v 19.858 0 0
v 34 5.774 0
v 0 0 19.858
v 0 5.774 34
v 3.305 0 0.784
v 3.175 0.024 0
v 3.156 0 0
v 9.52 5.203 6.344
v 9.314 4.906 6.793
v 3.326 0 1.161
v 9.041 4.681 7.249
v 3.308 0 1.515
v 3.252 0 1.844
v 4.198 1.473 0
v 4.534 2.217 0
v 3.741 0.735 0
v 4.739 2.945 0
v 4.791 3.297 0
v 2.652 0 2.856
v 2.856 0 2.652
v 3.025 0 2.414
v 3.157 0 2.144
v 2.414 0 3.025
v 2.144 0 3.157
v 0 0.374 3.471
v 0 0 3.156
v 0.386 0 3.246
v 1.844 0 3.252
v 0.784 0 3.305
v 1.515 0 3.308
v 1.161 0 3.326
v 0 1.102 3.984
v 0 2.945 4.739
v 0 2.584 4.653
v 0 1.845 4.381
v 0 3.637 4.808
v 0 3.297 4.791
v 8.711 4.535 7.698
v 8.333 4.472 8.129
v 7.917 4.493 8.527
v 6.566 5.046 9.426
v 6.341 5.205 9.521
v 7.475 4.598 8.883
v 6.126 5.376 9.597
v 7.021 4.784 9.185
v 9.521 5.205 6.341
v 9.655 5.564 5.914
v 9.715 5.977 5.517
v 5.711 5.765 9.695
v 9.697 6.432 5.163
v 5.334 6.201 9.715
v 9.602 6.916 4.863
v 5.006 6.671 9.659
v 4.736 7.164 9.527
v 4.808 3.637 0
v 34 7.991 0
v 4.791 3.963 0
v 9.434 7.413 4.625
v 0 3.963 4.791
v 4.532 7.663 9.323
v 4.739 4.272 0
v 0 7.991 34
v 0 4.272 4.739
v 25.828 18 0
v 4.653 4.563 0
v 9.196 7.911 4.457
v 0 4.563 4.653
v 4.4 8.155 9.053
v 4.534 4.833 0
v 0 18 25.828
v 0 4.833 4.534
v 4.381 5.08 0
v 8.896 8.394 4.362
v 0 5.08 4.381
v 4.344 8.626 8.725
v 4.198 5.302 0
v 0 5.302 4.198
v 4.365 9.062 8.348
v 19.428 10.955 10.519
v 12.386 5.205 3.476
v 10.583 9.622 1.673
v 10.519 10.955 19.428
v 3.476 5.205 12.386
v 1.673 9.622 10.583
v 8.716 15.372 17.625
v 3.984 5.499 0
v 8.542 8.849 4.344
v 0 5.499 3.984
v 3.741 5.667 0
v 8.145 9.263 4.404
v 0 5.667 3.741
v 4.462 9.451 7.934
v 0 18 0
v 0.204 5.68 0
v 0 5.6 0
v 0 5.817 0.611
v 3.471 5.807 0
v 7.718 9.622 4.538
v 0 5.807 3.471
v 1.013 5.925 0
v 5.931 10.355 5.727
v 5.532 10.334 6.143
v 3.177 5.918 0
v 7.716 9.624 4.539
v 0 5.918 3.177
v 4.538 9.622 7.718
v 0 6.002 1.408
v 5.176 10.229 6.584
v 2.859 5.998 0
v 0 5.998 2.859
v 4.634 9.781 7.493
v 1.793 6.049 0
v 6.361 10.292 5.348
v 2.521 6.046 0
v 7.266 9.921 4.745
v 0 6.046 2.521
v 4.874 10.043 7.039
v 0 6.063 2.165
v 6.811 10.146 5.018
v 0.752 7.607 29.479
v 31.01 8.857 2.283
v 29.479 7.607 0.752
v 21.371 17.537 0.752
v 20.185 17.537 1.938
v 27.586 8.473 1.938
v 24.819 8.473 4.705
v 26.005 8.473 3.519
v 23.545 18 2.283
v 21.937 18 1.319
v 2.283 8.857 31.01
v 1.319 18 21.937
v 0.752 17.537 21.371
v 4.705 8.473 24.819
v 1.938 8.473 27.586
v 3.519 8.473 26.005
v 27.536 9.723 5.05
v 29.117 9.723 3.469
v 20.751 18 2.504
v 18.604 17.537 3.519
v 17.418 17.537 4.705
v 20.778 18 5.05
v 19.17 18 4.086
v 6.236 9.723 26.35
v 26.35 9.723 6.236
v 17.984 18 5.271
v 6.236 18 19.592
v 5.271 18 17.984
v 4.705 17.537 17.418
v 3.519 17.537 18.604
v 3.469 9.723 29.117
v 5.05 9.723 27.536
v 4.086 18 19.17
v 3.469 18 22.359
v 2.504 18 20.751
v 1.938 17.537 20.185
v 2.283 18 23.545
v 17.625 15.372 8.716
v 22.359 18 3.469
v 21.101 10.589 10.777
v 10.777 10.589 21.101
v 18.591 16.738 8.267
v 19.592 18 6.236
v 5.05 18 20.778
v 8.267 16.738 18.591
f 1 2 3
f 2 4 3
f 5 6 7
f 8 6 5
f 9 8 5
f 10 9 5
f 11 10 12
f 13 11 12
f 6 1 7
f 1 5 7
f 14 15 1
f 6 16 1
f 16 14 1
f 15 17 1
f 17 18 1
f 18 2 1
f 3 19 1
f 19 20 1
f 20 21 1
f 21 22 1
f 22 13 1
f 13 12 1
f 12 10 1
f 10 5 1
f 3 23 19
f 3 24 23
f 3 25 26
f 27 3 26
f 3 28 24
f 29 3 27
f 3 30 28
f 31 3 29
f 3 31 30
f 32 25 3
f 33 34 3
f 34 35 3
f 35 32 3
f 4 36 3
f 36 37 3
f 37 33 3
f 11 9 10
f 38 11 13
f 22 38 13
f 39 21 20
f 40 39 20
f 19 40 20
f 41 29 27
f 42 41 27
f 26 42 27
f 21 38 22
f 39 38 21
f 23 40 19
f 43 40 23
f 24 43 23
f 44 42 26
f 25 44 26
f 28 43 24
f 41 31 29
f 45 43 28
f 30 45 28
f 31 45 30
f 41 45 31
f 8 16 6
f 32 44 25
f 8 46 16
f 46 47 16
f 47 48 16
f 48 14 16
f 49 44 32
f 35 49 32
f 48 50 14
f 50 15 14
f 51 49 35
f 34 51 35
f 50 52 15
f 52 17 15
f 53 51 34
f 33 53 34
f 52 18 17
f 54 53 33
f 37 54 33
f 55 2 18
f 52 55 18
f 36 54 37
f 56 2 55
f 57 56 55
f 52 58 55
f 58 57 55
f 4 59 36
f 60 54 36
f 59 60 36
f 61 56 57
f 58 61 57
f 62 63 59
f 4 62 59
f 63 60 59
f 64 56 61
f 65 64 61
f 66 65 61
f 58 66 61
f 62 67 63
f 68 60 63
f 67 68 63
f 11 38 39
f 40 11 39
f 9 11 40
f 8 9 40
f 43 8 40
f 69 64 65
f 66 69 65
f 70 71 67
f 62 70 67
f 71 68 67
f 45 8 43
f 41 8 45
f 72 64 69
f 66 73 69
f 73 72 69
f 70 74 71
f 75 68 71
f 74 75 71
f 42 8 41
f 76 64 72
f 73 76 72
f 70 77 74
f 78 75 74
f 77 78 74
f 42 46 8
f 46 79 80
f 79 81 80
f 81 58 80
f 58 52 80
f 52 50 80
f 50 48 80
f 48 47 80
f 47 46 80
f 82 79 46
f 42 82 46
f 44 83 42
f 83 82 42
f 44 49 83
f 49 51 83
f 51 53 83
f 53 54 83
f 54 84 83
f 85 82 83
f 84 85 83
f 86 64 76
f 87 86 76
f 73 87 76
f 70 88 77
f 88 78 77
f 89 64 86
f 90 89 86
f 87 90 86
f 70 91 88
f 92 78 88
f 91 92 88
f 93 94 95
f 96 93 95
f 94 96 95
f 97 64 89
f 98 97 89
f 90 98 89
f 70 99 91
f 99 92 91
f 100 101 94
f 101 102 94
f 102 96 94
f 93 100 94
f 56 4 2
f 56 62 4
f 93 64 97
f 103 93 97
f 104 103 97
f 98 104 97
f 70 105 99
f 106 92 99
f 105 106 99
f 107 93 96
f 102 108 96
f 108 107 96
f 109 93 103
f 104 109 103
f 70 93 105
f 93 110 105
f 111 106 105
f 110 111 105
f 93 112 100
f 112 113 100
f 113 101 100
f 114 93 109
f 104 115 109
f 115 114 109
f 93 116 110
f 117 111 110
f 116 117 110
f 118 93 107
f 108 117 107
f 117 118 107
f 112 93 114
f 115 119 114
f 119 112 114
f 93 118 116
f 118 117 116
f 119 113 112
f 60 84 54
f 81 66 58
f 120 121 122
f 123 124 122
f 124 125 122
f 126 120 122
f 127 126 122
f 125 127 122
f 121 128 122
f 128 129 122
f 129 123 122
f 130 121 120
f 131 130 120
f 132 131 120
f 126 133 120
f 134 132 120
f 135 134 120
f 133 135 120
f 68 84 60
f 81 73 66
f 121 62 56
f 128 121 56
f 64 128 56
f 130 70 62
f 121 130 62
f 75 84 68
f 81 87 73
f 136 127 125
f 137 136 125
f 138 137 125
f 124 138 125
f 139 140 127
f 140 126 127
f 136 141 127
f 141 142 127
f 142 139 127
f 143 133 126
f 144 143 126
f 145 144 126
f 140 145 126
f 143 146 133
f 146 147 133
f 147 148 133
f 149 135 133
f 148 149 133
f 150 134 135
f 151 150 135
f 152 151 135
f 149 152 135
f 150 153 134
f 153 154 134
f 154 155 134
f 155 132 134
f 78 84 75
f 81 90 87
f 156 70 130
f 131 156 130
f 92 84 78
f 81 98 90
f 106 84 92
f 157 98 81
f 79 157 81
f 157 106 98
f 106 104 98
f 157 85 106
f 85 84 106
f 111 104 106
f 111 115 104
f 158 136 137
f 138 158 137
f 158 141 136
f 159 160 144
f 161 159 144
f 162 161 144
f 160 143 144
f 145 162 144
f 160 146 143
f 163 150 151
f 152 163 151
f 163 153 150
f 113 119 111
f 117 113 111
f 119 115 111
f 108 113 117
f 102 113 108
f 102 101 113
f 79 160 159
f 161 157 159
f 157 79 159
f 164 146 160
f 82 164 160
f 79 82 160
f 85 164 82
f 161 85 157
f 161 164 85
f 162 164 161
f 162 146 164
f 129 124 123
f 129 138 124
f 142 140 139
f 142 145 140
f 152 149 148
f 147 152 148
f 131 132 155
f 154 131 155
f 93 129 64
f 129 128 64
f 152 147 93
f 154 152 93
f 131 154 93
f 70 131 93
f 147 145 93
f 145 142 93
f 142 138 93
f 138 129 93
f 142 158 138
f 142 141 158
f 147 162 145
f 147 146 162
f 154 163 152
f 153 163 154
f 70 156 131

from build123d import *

# Parameters (mm, degrees)
BOSS_EXTRUDE1_DEPTH     = 18
CUT_EXTRUDE2_DEPTH      = 9
CUT_EXTRUDE3_DEPTH      = 30.344292319
CUT_EXTRUDE3_DEPTH_BACK = 12.5
SKETCH6_6_W             = 12.6
SKETCH6_6_H             = 5.1
CUT_EXTRUDE4_DEPTH      = 2.5
CHAMFER1_SIZE           = 10
CHAMFER1_SIZE2          = 5.773502692
CHAMFER2_SIZE           = 1
CUT_EXTRUDE5_START      = -12.5
CUT_EXTRUDE5_DEPTH      = 17.844292319


with BuildPart() as part:
    # Sketch1 → Boss-Extrude1 (new body)
    with BuildSketch(Plane(origin=(0, 0, 0), x_dir=(1, 0, 0), z_dir=(0, 1, 0))):
        Polygon((0, 0), (0, -34), (34, 0), align=None)
    extrude(amount=BOSS_EXTRUDE1_DEPTH)

    # Sketch6 → Cut-Extrude2 (cut)
    # profile 1 of 8: a face of its own
    with BuildSketch(Plane(origin=(15.196708808, 12.408060783, 15.196708808), x_dir=(0.7071067811865475, 0, -0.7071067811865476), z_dir=(0.6123724356957942, 0.5000000000000011, 0.6123724356957941))):
        Polygon((-24.04163056, 7.366311807), (-24.04163056, -5.100477721), (24.04163056, -5.100477721), (24.04163056, 7.366311807), (-8.989412587, 7.366311807), (-14.222807352, -3.100477721), (0, -3.100477721), (0, -4.100477721), (-20.312977295, -4.100477721), (-14.579582531, 7.366311807), align=None)
        with BuildLine():
            ThreePointArc((2.248888614, -1.100477721), (0, -1.950477721), (-2.248888614, -1.100477721))
            Line((-2.248888614, -1.100477721), (-6.3, -1.100477721))
            Line((-6.3, -1.100477721), (-6.3, 3.999522279))
            Line((-6.3, 3.999522279), (-2.248888614, 3.999522279))
            ThreePointArc((-2.248888614, 3.999522279), (0, 4.849522279), (2.248888614, 3.999522279))
            Line((2.248888614, 3.999522279), (6.3, 3.999522279))
            Line((6.3, 3.999522279), (6.3, -1.100477721))
            Line((6.3, -1.100477721), (2.248888614, -1.100477721))
        make_face(mode=Mode.SUBTRACT)
    # profile 2 of 8: a face of its own
    with BuildSketch(Plane(origin=(15.196708808, 12.408060783, 15.196708808), x_dir=(0.7071067811865475, 0, -0.7071067811865476), z_dir=(0.6123724356957942, 0.5000000000000011, 0.6123724356957941))):
        with BuildLine():
            ThreePointArc((3.4, 1.449522279), (3.098888614, 0.050633664), (2.248888614, -1.100477721))
            Line((2.248888614, -1.100477721), (6.3, -1.100477721))
            Line((6.3, -1.100477721), (6.3, 3.999522279))
            Line((6.3, 3.999522279), (2.248888614, 3.999522279))
            ThreePointArc((2.248888614, 3.999522279), (3.098888614, 2.848410893), (3.4, 1.449522279))
        make_face()
    # profile 3 of 8: a face of its own
    with BuildSketch(Plane(origin=(15.196708808, 12.408060783, 15.196708808), x_dir=(0.7071067811865475, 0, -0.7071067811865476), z_dir=(0.6123724356957942, 0.5000000000000011, 0.6123724356957941))):
        with BuildLine():
            Line((-6.3, -1.100477721), (-2.248888614, -1.100477721))
            ThreePointArc((-2.248888614, -1.100477721), (-3.4, 1.449522279), (-2.248888614, 3.999522279))
            Line((-2.248888614, 3.999522279), (-6.3, 3.999522279))
            Line((-6.3, 3.999522279), (-6.3, -1.100477721))
        make_face()
    # profile 4 of 8: a face of its own
    with BuildSketch(Plane(origin=(15.196708808, 12.408060783, 15.196708808), x_dir=(0.7071067811865475, 0, -0.7071067811865476), z_dir=(0.6123724356957942, 0.5000000000000011, 0.6123724356957941))):
        with BuildLine():
            Line((0, -1.100477721), (-2.248888614, -1.100477721))
            ThreePointArc((-2.248888614, -1.100477721), (0, -1.950477721), (2.248888614, -1.100477721))
            Line((2.248888614, -1.100477721), (0, -1.100477721))
        make_face()
    # profile 5 of 8: a face of its own
    with BuildSketch(Plane(origin=(15.196708808, 12.408060783, 15.196708808), x_dir=(0.7071067811865475, 0, -0.7071067811865476), z_dir=(0.6123724356957942, 0.5000000000000011, 0.6123724356957941))):
        with BuildLine():
            ThreePointArc((2.248888614, 3.999522279), (0, 4.849522279), (-2.248888614, 3.999522279))
            Line((-2.248888614, 3.999522279), (0, 3.999522279))
            Line((0, 3.999522279), (2.248888614, 3.999522279))
        make_face()
    # profile 6 of 8: a face of its own
    with BuildSketch(Plane(origin=(15.196708808, 12.408060783, 15.196708808), x_dir=(0.7071067811865475, 0, -0.7071067811865476), z_dir=(0.6123724356957942, 0.5000000000000011, 0.6123724356957941))):
        with BuildLine():
            ThreePointArc((-2.248888614, 3.999522279), (-3.4, 1.449522279), (-2.248888614, -1.100477721))
            Line((-2.248888614, -1.100477721), (0, -1.100477721))
            Line((0, -1.100477721), (2.248888614, -1.100477721))
            ThreePointArc((2.248888614, -1.100477721), (3.098888614, 0.050633664), (3.4, 1.449522279))
            ThreePointArc((3.4, 1.449522279), (3.098888614, 2.848410893), (2.248888614, 3.999522279))
            Line((2.248888614, 3.999522279), (0, 3.999522279))
            Line((0, 3.999522279), (-2.248888614, 3.999522279))
        make_face()
    # profile 7 of 8: a face of its own
    with BuildSketch(Plane(origin=(15.196708808, 12.408060783, 15.196708808), x_dir=(0.7071067811865475, 0, -0.7071067811865476), z_dir=(0.6123724356957942, 0.5000000000000011, 0.6123724356957941))):
        Polygon((-12.902531548, 7.366311807), (-14.579582531, 7.366311807), (-20.312977295, -4.100477721), (0, -4.100477721), (0, -3.100477721), (-14.222807352, -3.100477721), (-8.989412587, 7.366311807), (-10.666463571, 7.366311807), (-15.899858335, -3.100477721), (-18.135926312, -3.100477721), align=None)
    # profile 8 of 8: a face of its own
    with BuildSketch(Plane(origin=(15.196708808, 12.408060783, 15.196708808), x_dir=(0.7071067811865475, 0, -0.7071067811865476), z_dir=(0.6123724356957942, 0.5000000000000011, 0.6123724356957941))):
        Polygon((-10.666463571, 7.366311807), (-12.902531548, 7.366311807), (-18.135926312, -3.100477721), (-15.899858335, -3.100477721), align=None)
    extrude(amount=CUT_EXTRUDE2_DEPTH, mode=Mode.SUBTRACT)

    # Sketch6<6> → Cut-Extrude3 (cut, two sides: drawn at the far end of the back side and taken through both)
    with BuildSketch(Plane(origin=(15.196708808, 12.408060783, 15.196708808), x_dir=(0.7071067811865475, 0, -0.7071067811865476), z_dir=(0.6123724356957942, 0.5000000000000011, 0.6123724356957941)).offset(-CUT_EXTRUDE3_DEPTH_BACK)):
        with Locations((0, 1.449522279)):
            Rectangle(SKETCH6_6_W, SKETCH6_6_H)
    extrude(amount=CUT_EXTRUDE3_DEPTH + CUT_EXTRUDE3_DEPTH_BACK, mode=Mode.SUBTRACT)

    # Sketch6<8> → Cut-Extrude4 (cut)
    with BuildSketch(Plane(origin=(15.196708808, 12.408060783, 15.196708808), x_dir=(0.7071067811865475, 0, -0.7071067811865476), z_dir=(0.6123724356957942, 0.5000000000000011, 0.6123724356957941))):
        Polygon((-12.902531548, 7.366311807), (-14.579582531, 7.366311807), (-20.312977295, -4.100477721), (0, -4.100477721), (0, -3.100477721), (-14.222807352, -3.100477721), (-8.989412587, 7.366311807), (-10.666463571, 7.366311807), (-15.899858335, -3.100477721), (-18.135926312, -3.100477721), align=None)
    cut_extrude4 = extrude(amount=-CUT_EXTRUDE4_DEPTH, mode=Mode.SUBTRACT)

    # Mirror1: Cut-Extrude4 across plane
    add(cut_extrude4.mirror(Plane(origin=(0, 0, 0), x_dir=(0.7071067811865476, 0, 0.7071067811865476), z_dir=(-0.7071067811865477, 0, 0.7071067811865475))), mode=Mode.SUBTRACT)

    # Chamfer1
    chamfer1_edges = [part.edges().sort_by_distance(p)[0] for p in [
        (17, 0, 17),
    ]]
    chamfer1_side = [part.faces().sort_by_distance(p)[0] for p in [
        (11.333333333, 0, 11.333333333),
    ]]
    chamfer(chamfer1_edges, length=CHAMFER1_SIZE, length2=CHAMFER1_SIZE2, reference=chamfer1_side[0])

    # Chamfer2
    chamfer2_edges = [part.edges().sort_by_distance(p)[0] for p in [
        (19.138998013, 13.6633839, 10.22945257),
        (15.585786438, 11.45501912, 15.585786438),
        (10.22945257, 13.6633839, 19.138998013),
        (13.782664146, 15.871748679, 13.782664146),
    ]]
    chamfer(chamfer2_edges, length=CHAMFER2_SIZE)

    # Sketch6<9> → Cut-Extrude5 (cut, through all)
    with BuildSketch(Plane(origin=(15.196708808, 12.408060783, 15.196708808), x_dir=(0.7071067811865475, 0, -0.7071067811865476), z_dir=(0.6123724356957942, 0.5000000000000011, 0.6123724356957941)).offset(CUT_EXTRUDE5_START)):
        with BuildLine():
            ThreePointArc((2.248888614, 3.999522279), (0, 4.849522279), (-2.248888614, 3.999522279))
            Line((-2.248888614, 3.999522279), (0, 3.999522279))
            Line((0, 3.999522279), (2.248888614, 3.999522279))
        make_face()
        with BuildLine():
            ThreePointArc((-2.248888614, 3.999522279), (-3.4, 1.449522279), (-2.248888614, -1.100477721))
            Line((-2.248888614, -1.100477721), (0, -1.100477721))
            Line((0, -1.100477721), (2.248888614, -1.100477721))
            ThreePointArc((2.248888614, -1.100477721), (3.098888614, 0.050633664), (3.4, 1.449522279))
            ThreePointArc((3.4, 1.449522279), (3.098888614, 2.848410893), (2.248888614, 3.999522279))
            Line((2.248888614, 3.999522279), (0, 3.999522279))
            Line((0, 3.999522279), (-2.248888614, 3.999522279))
        make_face()
        with BuildLine():
            Line((0, -1.100477721), (-2.248888614, -1.100477721))
            ThreePointArc((-2.248888614, -1.100477721), (0, -1.950477721), (2.248888614, -1.100477721))
            Line((2.248888614, -1.100477721), (0, -1.100477721))
        make_face()
    extrude(amount=-CUT_EXTRUDE5_DEPTH, mode=Mode.SUBTRACT)


solid = part.part
